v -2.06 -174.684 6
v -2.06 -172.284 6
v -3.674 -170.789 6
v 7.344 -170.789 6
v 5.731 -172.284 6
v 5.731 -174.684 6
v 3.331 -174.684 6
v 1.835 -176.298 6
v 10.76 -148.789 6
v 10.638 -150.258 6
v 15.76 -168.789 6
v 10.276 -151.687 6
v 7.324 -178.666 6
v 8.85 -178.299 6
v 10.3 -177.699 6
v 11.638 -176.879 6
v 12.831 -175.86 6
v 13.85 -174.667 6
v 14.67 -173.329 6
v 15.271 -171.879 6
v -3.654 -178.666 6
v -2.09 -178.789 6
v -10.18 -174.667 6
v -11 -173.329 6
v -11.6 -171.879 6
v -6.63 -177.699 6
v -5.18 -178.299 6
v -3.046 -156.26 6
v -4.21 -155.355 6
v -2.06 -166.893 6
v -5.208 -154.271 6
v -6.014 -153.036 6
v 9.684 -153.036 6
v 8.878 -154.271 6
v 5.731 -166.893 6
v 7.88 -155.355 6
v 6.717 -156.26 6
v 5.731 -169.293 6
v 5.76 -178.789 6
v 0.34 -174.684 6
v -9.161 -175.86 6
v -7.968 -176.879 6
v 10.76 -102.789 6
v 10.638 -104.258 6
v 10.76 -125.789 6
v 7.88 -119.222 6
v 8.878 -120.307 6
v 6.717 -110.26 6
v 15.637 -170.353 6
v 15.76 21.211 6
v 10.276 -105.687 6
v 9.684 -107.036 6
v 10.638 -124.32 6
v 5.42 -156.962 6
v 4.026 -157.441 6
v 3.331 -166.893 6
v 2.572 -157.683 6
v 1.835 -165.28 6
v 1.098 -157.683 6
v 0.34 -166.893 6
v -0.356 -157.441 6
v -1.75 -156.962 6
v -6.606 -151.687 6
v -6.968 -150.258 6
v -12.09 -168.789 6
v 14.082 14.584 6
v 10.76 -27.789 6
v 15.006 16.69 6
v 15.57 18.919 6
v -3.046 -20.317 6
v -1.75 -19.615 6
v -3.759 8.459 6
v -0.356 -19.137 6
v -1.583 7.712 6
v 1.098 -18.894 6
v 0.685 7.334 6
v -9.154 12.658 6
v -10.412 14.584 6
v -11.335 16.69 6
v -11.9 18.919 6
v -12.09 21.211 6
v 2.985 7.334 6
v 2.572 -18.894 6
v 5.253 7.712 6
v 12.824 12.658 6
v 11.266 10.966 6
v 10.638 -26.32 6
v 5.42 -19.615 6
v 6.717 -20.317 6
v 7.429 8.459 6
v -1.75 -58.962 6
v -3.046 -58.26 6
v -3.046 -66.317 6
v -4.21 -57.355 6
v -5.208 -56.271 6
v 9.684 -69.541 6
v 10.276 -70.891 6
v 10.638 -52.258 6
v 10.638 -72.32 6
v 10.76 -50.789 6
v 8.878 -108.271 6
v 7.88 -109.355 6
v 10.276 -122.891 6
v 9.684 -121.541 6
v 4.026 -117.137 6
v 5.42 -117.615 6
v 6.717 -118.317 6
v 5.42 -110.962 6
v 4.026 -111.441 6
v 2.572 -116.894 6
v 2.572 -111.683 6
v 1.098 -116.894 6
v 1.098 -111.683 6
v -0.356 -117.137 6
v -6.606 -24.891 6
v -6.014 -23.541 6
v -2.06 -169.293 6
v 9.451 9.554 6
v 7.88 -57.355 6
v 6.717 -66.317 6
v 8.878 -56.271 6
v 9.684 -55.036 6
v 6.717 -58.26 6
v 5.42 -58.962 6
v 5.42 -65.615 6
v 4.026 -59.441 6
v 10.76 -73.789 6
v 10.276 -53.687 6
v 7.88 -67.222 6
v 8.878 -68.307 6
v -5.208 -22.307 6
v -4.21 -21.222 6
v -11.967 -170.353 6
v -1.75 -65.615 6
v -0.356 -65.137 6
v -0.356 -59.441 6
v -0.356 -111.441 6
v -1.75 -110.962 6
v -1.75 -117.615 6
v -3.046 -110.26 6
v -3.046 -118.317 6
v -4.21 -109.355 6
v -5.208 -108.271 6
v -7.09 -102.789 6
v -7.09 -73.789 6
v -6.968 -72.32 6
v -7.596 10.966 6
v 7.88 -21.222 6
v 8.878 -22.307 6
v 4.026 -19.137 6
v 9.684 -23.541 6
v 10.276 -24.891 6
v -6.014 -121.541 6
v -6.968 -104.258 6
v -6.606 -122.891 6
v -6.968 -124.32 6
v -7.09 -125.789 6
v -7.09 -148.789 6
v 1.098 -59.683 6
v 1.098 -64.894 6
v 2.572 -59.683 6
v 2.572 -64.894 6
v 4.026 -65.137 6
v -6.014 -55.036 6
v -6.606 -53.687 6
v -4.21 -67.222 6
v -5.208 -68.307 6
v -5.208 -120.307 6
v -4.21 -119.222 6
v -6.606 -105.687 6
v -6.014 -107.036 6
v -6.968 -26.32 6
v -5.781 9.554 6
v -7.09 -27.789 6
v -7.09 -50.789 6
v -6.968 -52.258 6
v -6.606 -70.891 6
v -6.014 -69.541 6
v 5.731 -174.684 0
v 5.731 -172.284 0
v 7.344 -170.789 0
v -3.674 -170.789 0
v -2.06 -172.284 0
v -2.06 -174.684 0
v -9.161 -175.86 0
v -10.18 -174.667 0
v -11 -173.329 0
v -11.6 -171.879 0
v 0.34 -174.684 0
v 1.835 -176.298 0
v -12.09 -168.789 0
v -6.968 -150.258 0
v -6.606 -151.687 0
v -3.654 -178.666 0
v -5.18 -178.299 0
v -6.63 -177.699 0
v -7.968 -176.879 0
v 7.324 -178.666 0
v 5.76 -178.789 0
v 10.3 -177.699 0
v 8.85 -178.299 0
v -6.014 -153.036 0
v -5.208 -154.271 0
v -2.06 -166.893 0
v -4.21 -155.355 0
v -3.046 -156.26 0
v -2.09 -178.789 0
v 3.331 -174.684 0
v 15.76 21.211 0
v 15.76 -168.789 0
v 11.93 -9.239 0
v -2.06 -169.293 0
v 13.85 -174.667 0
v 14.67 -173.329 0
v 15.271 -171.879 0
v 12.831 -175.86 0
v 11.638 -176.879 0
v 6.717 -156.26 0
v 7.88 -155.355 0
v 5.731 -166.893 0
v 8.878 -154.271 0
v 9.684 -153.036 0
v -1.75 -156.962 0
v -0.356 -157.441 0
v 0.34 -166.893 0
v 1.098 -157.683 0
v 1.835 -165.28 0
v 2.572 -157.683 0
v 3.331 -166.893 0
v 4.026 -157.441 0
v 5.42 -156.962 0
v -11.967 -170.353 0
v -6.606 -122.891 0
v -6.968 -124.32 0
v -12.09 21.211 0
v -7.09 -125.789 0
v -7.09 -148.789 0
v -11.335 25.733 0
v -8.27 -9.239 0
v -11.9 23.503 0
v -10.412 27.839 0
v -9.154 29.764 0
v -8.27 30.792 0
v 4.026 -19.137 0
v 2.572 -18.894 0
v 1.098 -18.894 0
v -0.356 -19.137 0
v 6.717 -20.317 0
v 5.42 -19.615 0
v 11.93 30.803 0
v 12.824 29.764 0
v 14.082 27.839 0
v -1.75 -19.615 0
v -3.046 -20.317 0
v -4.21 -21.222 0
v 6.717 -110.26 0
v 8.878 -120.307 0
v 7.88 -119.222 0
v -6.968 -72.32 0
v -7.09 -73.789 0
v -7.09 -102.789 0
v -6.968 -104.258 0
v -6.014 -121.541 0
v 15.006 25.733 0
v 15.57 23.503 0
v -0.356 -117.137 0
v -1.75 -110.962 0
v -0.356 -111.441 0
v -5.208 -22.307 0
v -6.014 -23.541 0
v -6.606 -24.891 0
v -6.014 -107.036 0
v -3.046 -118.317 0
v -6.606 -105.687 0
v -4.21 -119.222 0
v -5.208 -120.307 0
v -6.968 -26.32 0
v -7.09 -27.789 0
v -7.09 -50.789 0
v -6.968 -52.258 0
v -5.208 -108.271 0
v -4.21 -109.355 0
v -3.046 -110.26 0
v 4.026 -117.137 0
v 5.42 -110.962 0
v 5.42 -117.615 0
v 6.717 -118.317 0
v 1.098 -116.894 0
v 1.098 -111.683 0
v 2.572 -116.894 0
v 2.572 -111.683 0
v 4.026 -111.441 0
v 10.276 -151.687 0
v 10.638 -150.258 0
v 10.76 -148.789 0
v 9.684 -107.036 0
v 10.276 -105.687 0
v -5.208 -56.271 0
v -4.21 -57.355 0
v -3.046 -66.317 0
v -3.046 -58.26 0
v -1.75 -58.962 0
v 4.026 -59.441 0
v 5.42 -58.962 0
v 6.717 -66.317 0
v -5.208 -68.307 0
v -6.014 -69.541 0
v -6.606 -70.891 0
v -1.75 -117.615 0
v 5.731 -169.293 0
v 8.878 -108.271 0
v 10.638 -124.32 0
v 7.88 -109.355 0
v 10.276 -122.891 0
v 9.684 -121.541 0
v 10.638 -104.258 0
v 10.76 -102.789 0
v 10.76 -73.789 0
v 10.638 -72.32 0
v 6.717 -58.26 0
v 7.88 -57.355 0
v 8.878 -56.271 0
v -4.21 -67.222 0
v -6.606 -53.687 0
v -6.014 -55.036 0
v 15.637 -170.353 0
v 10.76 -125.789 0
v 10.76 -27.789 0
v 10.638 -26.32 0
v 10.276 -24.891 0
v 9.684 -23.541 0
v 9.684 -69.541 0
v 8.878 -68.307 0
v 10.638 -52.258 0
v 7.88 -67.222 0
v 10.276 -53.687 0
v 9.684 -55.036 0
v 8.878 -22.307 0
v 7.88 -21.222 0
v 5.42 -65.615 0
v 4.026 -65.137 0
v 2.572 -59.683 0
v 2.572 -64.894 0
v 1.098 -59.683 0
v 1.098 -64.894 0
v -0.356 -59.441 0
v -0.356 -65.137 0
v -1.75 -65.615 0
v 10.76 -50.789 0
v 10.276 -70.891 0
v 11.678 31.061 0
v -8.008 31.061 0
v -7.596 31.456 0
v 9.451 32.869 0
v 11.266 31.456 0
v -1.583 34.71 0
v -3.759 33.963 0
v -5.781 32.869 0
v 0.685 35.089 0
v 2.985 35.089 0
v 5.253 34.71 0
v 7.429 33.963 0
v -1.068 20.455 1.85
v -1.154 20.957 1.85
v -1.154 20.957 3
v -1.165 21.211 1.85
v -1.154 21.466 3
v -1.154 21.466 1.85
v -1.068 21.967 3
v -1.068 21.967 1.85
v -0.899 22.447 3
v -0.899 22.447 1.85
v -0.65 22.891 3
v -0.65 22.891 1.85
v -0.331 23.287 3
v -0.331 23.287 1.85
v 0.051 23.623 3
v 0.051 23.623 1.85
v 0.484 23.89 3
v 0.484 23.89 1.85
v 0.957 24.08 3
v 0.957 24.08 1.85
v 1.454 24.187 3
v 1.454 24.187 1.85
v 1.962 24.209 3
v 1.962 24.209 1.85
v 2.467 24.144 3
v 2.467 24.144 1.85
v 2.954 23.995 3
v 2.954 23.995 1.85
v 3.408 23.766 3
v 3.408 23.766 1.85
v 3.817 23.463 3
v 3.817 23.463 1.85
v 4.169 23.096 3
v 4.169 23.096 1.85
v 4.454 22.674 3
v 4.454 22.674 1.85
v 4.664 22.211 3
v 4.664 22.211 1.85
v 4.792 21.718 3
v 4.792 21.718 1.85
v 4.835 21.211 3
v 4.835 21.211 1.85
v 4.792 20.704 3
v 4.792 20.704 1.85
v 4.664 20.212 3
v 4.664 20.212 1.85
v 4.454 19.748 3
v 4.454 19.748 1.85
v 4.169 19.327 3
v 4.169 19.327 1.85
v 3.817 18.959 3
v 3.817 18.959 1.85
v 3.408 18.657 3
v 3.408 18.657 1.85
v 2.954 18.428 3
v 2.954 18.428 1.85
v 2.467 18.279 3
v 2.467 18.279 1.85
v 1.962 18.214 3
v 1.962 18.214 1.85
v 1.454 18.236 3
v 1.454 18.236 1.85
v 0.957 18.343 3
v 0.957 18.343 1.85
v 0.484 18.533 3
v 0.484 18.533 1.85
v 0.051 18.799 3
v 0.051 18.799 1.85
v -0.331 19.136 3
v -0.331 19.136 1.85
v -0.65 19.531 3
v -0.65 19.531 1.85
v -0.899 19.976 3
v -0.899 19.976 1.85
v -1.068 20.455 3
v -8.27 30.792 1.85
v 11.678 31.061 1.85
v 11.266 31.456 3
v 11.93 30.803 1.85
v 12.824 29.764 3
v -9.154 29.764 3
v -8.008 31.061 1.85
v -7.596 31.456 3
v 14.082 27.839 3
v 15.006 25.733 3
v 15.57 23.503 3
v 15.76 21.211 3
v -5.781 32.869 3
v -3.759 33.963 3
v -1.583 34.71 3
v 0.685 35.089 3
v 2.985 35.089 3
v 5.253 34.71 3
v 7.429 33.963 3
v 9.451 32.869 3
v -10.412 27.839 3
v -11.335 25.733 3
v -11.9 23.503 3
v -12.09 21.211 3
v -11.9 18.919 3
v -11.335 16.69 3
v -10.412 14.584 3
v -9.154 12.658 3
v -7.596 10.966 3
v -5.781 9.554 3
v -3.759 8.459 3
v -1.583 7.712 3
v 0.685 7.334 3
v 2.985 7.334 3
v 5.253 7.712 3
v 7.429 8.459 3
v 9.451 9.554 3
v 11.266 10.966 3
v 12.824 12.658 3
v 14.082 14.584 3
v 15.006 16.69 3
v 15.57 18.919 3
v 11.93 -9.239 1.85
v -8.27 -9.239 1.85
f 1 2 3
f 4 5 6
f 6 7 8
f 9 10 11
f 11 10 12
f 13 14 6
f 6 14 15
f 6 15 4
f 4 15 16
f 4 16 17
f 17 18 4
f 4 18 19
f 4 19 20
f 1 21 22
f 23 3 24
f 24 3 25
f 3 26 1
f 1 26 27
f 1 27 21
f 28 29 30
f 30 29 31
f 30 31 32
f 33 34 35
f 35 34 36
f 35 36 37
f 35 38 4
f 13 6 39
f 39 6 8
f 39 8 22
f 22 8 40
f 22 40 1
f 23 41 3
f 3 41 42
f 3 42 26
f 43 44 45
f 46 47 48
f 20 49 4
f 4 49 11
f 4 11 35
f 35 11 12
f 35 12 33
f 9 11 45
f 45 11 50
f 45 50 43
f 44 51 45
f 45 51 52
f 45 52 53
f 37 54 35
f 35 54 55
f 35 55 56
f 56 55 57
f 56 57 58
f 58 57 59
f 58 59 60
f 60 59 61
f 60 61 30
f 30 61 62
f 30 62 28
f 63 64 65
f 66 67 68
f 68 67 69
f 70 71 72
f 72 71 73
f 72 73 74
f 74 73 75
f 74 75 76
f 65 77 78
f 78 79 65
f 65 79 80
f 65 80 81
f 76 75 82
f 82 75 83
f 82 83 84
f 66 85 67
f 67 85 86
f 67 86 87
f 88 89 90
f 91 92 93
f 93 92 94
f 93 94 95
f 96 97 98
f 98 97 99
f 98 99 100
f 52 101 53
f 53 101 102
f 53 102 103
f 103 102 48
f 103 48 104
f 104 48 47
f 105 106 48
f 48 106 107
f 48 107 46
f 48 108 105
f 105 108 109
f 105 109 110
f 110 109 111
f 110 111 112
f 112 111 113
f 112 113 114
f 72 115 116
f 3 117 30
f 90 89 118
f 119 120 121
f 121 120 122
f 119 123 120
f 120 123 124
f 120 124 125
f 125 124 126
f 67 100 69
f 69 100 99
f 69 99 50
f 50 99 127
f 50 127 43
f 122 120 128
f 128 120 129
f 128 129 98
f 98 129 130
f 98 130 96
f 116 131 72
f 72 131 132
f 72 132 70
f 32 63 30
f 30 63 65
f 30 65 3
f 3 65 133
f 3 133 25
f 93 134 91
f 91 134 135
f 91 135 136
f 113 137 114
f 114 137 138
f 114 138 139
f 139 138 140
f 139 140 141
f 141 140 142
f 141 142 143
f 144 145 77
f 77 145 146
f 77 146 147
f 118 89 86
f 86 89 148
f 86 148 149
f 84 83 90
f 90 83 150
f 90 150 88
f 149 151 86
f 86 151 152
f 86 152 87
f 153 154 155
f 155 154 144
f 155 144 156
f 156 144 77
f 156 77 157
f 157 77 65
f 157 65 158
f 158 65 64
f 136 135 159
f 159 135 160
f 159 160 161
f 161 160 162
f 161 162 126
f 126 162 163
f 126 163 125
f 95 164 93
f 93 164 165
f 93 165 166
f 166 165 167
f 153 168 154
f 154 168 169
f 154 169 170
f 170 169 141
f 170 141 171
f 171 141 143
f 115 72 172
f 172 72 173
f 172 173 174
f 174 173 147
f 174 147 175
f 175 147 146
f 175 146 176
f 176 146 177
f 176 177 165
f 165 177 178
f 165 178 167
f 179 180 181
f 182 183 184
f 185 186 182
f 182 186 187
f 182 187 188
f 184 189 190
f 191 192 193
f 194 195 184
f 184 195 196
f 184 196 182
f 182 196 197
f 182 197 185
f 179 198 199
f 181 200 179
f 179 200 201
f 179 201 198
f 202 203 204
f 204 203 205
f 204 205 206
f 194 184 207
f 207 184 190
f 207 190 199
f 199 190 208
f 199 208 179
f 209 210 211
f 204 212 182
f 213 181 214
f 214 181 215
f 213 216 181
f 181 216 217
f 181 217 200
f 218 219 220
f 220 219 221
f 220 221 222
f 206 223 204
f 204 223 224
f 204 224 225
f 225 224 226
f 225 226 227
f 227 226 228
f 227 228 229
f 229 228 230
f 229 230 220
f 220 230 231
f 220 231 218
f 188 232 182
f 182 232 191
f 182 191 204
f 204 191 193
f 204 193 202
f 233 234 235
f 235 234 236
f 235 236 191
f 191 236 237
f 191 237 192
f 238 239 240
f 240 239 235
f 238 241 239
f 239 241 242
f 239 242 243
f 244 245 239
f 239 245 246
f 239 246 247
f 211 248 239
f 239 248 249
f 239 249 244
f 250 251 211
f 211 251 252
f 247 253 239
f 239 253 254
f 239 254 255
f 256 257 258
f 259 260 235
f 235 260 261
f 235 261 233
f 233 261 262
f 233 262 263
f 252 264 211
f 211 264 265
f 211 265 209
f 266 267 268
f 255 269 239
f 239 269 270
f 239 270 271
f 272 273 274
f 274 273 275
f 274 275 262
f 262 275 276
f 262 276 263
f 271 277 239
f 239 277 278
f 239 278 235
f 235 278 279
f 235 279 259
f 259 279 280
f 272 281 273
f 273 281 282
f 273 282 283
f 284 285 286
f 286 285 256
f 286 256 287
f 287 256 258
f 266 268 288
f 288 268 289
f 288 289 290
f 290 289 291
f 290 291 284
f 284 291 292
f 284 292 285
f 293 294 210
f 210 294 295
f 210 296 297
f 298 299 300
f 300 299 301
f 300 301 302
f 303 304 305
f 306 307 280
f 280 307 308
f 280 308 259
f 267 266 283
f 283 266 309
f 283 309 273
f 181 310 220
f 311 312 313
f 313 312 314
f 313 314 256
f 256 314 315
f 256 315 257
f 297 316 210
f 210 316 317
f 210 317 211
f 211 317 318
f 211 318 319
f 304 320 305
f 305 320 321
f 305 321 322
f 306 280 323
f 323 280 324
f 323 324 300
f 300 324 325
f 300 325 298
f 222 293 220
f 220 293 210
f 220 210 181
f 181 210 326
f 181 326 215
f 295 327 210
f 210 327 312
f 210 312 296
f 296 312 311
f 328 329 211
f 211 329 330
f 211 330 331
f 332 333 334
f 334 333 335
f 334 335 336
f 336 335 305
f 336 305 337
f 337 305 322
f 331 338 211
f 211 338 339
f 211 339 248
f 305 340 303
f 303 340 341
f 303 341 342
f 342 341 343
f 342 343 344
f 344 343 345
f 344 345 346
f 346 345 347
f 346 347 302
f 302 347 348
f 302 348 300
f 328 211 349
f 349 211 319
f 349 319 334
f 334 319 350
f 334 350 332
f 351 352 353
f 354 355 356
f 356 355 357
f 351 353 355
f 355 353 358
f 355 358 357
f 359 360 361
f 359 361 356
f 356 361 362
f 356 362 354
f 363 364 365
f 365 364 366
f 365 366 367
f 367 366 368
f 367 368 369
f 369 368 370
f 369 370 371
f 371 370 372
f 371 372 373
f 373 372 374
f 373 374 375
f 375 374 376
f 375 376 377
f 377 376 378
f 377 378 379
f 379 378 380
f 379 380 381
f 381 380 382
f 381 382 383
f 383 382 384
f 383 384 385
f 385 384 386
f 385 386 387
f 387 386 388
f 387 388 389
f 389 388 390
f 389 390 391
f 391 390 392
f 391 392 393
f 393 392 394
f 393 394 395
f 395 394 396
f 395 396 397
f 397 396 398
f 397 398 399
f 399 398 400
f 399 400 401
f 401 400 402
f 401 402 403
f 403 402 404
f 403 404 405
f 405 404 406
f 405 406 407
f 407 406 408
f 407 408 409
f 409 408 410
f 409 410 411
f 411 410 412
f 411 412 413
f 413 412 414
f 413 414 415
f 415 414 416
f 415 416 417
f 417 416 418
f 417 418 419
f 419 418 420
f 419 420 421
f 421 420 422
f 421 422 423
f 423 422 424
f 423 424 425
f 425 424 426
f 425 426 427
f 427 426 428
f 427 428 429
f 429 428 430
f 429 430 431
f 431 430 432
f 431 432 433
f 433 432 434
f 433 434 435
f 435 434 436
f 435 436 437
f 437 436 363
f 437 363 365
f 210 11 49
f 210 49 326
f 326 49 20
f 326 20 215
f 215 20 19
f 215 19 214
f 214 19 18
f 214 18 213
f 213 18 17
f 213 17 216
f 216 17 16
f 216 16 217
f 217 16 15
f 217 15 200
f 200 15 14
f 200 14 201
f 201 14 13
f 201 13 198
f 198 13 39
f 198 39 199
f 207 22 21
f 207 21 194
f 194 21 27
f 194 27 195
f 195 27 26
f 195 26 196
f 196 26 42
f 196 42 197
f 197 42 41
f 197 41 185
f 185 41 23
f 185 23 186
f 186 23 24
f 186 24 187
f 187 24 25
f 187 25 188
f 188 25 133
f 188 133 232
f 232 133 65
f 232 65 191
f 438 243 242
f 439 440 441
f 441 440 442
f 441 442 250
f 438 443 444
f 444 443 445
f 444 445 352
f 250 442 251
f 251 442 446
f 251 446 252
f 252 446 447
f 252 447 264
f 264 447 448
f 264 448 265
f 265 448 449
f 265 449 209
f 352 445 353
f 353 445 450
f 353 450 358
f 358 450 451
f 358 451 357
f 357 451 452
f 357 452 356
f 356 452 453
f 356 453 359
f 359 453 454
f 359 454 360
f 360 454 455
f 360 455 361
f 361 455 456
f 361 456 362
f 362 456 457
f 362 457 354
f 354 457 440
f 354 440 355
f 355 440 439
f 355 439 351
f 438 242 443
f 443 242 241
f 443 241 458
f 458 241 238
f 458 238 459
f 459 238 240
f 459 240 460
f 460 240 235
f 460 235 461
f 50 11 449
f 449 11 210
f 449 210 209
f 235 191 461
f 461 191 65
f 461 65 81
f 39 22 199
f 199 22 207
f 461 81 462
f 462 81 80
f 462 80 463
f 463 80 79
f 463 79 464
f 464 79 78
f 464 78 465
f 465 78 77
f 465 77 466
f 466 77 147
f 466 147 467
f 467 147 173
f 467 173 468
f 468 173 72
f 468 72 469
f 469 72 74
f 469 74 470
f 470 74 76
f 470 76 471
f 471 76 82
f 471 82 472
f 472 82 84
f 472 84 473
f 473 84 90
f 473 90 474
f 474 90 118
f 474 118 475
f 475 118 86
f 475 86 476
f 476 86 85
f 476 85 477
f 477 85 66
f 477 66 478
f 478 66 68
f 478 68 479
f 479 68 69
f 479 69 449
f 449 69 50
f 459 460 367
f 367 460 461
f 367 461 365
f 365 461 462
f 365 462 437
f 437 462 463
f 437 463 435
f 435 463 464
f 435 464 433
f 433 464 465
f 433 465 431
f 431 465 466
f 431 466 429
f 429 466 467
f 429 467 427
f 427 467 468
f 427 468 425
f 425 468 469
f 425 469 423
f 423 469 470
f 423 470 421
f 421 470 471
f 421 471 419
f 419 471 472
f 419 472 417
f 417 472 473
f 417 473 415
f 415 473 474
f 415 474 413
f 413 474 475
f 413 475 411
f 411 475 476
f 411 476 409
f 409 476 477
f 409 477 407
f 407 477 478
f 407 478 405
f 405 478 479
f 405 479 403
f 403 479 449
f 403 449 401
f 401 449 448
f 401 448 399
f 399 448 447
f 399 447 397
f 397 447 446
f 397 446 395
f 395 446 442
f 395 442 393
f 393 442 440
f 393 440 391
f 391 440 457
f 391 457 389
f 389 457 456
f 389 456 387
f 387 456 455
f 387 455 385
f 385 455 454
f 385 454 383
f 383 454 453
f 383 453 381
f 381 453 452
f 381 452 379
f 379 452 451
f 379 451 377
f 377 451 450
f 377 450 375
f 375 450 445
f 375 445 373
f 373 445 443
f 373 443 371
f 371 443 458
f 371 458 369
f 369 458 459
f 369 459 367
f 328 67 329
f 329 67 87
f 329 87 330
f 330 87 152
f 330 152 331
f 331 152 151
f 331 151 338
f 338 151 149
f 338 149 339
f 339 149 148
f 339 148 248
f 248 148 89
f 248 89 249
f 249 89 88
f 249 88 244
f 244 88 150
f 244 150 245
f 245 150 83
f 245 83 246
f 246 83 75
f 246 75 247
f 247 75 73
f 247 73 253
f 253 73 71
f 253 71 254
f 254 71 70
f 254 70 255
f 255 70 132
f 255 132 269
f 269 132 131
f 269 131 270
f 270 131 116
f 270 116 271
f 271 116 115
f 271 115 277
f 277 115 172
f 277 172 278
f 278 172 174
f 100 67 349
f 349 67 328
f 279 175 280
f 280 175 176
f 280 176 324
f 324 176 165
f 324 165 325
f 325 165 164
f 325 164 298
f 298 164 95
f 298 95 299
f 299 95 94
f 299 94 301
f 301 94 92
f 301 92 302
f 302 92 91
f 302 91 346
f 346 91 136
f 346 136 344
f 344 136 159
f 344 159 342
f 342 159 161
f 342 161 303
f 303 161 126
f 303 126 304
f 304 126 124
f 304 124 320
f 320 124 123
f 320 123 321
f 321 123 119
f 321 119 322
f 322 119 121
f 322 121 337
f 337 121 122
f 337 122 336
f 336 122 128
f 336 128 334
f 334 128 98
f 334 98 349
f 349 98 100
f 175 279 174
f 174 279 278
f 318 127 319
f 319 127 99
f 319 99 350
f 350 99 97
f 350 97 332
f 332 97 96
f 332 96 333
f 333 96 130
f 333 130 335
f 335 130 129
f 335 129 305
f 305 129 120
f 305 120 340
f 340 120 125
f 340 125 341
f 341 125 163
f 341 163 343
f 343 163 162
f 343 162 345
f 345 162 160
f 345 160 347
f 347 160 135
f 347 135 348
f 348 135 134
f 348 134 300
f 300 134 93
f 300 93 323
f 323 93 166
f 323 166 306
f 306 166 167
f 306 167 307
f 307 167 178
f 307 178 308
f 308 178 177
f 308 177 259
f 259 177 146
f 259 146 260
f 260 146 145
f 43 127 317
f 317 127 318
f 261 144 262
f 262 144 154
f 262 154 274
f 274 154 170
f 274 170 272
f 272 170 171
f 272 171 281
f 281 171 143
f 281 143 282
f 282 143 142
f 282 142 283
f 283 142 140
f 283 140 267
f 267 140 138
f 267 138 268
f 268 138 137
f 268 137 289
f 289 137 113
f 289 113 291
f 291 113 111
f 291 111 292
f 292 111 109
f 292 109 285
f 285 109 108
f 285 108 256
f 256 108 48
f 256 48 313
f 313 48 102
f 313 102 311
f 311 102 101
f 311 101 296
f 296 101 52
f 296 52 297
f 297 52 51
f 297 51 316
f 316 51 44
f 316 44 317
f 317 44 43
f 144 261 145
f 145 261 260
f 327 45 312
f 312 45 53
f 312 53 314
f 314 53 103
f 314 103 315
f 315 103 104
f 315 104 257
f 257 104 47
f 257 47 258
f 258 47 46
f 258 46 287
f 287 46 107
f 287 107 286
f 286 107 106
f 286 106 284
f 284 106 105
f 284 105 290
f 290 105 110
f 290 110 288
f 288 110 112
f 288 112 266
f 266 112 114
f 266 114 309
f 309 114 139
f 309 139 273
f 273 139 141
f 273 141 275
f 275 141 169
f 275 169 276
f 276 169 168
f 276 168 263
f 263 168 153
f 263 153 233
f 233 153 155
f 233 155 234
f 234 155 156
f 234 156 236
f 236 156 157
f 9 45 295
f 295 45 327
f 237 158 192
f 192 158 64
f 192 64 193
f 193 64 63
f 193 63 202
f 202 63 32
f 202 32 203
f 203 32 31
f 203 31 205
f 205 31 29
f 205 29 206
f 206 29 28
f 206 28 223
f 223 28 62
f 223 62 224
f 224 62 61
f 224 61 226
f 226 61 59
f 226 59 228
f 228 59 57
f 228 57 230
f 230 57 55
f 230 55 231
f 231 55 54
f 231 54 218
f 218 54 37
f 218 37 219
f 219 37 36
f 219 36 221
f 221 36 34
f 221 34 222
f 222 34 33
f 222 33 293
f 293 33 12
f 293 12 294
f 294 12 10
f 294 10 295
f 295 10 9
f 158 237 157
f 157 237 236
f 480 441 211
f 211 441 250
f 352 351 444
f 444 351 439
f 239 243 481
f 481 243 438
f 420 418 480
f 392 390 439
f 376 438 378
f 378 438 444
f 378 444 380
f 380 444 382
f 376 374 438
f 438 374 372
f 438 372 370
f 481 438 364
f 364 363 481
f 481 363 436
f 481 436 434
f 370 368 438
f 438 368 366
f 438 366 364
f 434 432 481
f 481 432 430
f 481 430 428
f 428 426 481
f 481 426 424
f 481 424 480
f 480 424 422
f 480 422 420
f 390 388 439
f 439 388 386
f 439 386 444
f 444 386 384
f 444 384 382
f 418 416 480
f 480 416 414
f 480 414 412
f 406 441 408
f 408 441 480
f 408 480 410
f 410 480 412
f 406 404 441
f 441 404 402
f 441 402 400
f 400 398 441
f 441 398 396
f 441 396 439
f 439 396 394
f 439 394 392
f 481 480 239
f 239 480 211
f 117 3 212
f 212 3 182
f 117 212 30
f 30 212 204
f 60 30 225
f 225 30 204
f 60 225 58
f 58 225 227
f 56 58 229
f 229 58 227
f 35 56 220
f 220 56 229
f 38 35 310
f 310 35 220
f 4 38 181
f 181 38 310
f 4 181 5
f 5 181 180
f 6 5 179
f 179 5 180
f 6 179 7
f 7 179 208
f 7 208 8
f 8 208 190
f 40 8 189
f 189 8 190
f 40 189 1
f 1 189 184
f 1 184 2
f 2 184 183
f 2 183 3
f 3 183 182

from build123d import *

# Parameters (mm, degrees)
ESQUISSE1_W             = 27.85
ESQUISSE1_H             = 200
BOSS_EXTRU_2_DEPTH      = 6
ENL_V_MAT_EXTRU_1_DEPTH = 6
ENL_V_START             = -3
ESQUISSE4_R             = 13.925
ENL_V_MAT_EXTRU_2_DEPTH = 3
ESQUISSE5_R             = 3
ENL_V_MAT_EXTRU_3_DEPTH = 3
ESQUISSE6_W             = 17.85
ESQUISSE6_H             = 23
ESQUISSE6_H_2           = 29
ENL_V_MAT_EXTRU_4_DEPTH = 10
CONG_1_R                = 10
CONG_2_R                = 10
ESQUISSE9_W             = 20.2
ESQUISSE9_H             = 40.3
ENL_V_MAT_EXTRU_7_DEPTH = 1.85
ENL_V_MAT_EXTRU_8_DEPTH = 10


with BuildPart() as part:
    # Esquisse1 → Boss.-Extru.2 (new body)
    with BuildSketch(Plane.XY):
        with Locations((1.835077519, -78.788662791)):
            Rectangle(ESQUISSE1_W, ESQUISSE1_H)
        with BuildLine():
            Line((-12.089922481, 21.211337209), (15.760077519, 21.211337209))
            ThreePointArc((15.760077519, 21.211337209), (1.835077519, 35.136337209), (-12.089922481, 21.211337209))
        make_face()
    extrude(amount=BOSS_EXTRU_2_DEPTH)

    # Esquisse3 → Enlèv. mat.-Extru.1 (cut)
    with BuildSketch(Plane.XY.offset(6)):
        with BuildLine():
            Line((4.433153731, -172.288662791), (4.433153731, -169.288662791))
            ThreePointArc((4.433153731, -169.288662791), (-1.164922481, -170.788662791), (4.433153731, -172.288662791))
        make_face()
    extrude(amount=-ENL_V_MAT_EXTRU_1_DEPTH, mode=Mode.SUBTRACT)

    # Esquisse4 → Enlèv. mat.-Extru.2 (cut)
    with BuildSketch(Plane.XY.offset(6).offset(ENL_V_START)):
        with Locations((1.835077519, 21.211337209)):
            Circle(ESQUISSE4_R)
    extrude(amount=ENL_V_MAT_EXTRU_2_DEPTH, mode=Mode.SUBTRACT)

    # Esquisse5 → Enlèv. mat.-Extru.3 (cut)
    with BuildSketch(Plane.XY.offset(3)):
        with Locations((1.835077519, 21.211337209)):
            Circle(ESQUISSE5_R)
    extrude(amount=-ENL_V_MAT_EXTRU_3_DEPTH, mode=Mode.SUBTRACT)

    # Esquisse6 → Enlèv. mat.-Extru.4 (cut)
    with BuildSketch(Plane.XY.offset(6)):
        with BuildLine():
            Line((-7.089922481, -27.788662791), (10.760077519, -27.788662791))
            ThreePointArc((10.760077519, -27.788662791), (1.835077519, -18.863662791), (-7.089922481, -27.788662791))
        make_face()
        with Locations((1.835077519, -39.288662791)):
            Rectangle(ESQUISSE6_W, ESQUISSE6_H)
        with BuildLine():
            Line((-7.089922481, -50.788662791), (10.760077519, -50.788662791))
            ThreePointArc((10.760077519, -50.788662791), (1.835077519, -59.713662791), (-7.089922481, -50.788662791))
        make_face()
        with BuildLine():
            ThreePointArc((-7.089922481, -73.788662791), (1.835077519, -64.863662791), (10.760077519, -73.788662791))
            Line((10.760077519, -73.788662791), (-7.089922481, -73.788662791))
        make_face()
        with Locations((1.835077519, -88.288662791)):
            Rectangle(ESQUISSE6_W, ESQUISSE6_H_2)
        with BuildLine():
            Line((-7.089922481, -102.788662791), (10.760077519, -102.788662791))
            ThreePointArc((10.760077519, -102.788662791), (1.835077519, -111.713662791), (-7.089922481, -102.788662791))
        make_face()
        with BuildLine():
            Line((-7.089922481, -125.788662791), (10.760077519, -125.788662791))
            ThreePointArc((10.760077519, -125.788662791), (1.835077519, -116.863662791), (-7.089922481, -125.788662791))
        make_face()
        with Locations((1.835077519, -137.288662791)):
            Rectangle(ESQUISSE6_W, ESQUISSE6_H)
        with BuildLine():
            Line((-7.089922481, -148.788662791), (10.760077519, -148.788662791))
            ThreePointArc((10.760077519, -148.788662791), (1.835077519, -157.713662791), (-7.089922481, -148.788662791))
        make_face()
    extrude(amount=-ENL_V_MAT_EXTRU_4_DEPTH, mode=Mode.SUBTRACT)

    # Congé1
    cong_1_edges = [part.edges().sort_by_distance(p)[0] for p in [
        (-12.089922481, -178.788662791, 3),
    ]]
    fillet(cong_1_edges, radius=CONG_1_R)

    # Congé2
    cong_2_edges = [part.edges().sort_by_distance(p)[0] for p in [
        (15.760077519, -178.788662791, 3),
    ]]
    fillet(cong_2_edges, radius=CONG_2_R)

    # Esquisse9 → Enlèv. mat.-Extru.7 (cut)
    with BuildSketch(Plane(origin=(0, 0, 0), x_dir=(-1, 0, 0), z_dir=(0, 0, -1))):
        with Locations((-1.830077519, 10.911337209)):
            Rectangle(ESQUISSE9_W, ESQUISSE9_H)
    extrude(amount=-ENL_V_MAT_EXTRU_7_DEPTH, mode=Mode.SUBTRACT)

    # Esquisse11 → Enlèv. mat.-Extru.8 (cut)
    # profile 1 of 7: a face of its own
    with BuildSketch(Plane.XY.offset(6)):
        Polygon((-2.060393609, -172.284133919), (-2.060393609, -169.293191663), (-3.673950582, -170.788662791), align=None)
    # profile 2 of 7: a face of its own
    with BuildSketch(Plane.XY.offset(6)):
        Polygon((0.339606391, -166.893191663), (-2.060393609, -166.893191663), (-2.060393609, -169.293191663), (-2.060393609, -172.284133919), (-2.060393609, -174.684133919), (0.339606391, -174.684133919), (3.330548647, -174.684133919), (5.730548647, -174.684133919), (5.730548647, -172.284133919), (5.730548647, -169.293191663), (5.730548647, -166.893191663), (3.330548647, -166.893191663), align=None)
        with BuildLine():
            ThreePointArc((4.433153731, -172.288662791), (-1.164922481, -170.788662791), (4.433153731, -169.288662791))
            ThreePointArc((4.433153731, -169.288662791), (4.732854998, -170.012205655), (4.835077519, -170.788662791))
            ThreePointArc((4.835077519, -170.788662791), (4.732854998, -171.565119926), (4.433153731, -172.288662791))
        make_face(mode=Mode.SUBTRACT)
    # profile 3 of 7: a face of its own
    with BuildSketch(Plane.XY.offset(6)):
        Polygon((1.835077519, -165.27963469), (0.339606391, -166.893191663), (3.330548647, -166.893191663), align=None)
    # profile 4 of 7: a face of its own
    with BuildSketch(Plane.XY.offset(6)):
        Polygon((7.34410562, -170.788662791), (5.730548647, -169.293191663), (5.730548647, -172.284133919), align=None)
    # profile 5 of 7: a face of its own
    with BuildSketch(Plane.XY.offset(6)):
        Polygon((3.330548647, -174.684133919), (0.339606391, -174.684133919), (1.835077519, -176.297690892), align=None)
    # profile 6 of 7: a face of its own
    with BuildSketch(Plane.XY.offset(6)):
        with BuildLine():
            ThreePointArc((4.835077519, -170.788662791), (4.732854998, -170.012205655), (4.433153731, -169.288662791))
            Line((4.433153731, -169.288662791), (4.433153731, -172.288662791))
            ThreePointArc((4.433153731, -172.288662791), (4.732854998, -171.565119926), (4.835077519, -170.788662791))
        make_face()
    # profile 7 of 7: a face of its own
    with BuildSketch(Plane.XY.offset(6)):
        with BuildLine():
            Line((4.433153731, -172.288662791), (4.433153731, -169.288662791))
            ThreePointArc((4.433153731, -169.288662791), (-1.164922481, -170.788662791), (4.433153731, -172.288662791))
        make_face()
    extrude(amount=-ENL_V_MAT_EXTRU_8_DEPTH, mode=Mode.SUBTRACT)


solid = part.part
